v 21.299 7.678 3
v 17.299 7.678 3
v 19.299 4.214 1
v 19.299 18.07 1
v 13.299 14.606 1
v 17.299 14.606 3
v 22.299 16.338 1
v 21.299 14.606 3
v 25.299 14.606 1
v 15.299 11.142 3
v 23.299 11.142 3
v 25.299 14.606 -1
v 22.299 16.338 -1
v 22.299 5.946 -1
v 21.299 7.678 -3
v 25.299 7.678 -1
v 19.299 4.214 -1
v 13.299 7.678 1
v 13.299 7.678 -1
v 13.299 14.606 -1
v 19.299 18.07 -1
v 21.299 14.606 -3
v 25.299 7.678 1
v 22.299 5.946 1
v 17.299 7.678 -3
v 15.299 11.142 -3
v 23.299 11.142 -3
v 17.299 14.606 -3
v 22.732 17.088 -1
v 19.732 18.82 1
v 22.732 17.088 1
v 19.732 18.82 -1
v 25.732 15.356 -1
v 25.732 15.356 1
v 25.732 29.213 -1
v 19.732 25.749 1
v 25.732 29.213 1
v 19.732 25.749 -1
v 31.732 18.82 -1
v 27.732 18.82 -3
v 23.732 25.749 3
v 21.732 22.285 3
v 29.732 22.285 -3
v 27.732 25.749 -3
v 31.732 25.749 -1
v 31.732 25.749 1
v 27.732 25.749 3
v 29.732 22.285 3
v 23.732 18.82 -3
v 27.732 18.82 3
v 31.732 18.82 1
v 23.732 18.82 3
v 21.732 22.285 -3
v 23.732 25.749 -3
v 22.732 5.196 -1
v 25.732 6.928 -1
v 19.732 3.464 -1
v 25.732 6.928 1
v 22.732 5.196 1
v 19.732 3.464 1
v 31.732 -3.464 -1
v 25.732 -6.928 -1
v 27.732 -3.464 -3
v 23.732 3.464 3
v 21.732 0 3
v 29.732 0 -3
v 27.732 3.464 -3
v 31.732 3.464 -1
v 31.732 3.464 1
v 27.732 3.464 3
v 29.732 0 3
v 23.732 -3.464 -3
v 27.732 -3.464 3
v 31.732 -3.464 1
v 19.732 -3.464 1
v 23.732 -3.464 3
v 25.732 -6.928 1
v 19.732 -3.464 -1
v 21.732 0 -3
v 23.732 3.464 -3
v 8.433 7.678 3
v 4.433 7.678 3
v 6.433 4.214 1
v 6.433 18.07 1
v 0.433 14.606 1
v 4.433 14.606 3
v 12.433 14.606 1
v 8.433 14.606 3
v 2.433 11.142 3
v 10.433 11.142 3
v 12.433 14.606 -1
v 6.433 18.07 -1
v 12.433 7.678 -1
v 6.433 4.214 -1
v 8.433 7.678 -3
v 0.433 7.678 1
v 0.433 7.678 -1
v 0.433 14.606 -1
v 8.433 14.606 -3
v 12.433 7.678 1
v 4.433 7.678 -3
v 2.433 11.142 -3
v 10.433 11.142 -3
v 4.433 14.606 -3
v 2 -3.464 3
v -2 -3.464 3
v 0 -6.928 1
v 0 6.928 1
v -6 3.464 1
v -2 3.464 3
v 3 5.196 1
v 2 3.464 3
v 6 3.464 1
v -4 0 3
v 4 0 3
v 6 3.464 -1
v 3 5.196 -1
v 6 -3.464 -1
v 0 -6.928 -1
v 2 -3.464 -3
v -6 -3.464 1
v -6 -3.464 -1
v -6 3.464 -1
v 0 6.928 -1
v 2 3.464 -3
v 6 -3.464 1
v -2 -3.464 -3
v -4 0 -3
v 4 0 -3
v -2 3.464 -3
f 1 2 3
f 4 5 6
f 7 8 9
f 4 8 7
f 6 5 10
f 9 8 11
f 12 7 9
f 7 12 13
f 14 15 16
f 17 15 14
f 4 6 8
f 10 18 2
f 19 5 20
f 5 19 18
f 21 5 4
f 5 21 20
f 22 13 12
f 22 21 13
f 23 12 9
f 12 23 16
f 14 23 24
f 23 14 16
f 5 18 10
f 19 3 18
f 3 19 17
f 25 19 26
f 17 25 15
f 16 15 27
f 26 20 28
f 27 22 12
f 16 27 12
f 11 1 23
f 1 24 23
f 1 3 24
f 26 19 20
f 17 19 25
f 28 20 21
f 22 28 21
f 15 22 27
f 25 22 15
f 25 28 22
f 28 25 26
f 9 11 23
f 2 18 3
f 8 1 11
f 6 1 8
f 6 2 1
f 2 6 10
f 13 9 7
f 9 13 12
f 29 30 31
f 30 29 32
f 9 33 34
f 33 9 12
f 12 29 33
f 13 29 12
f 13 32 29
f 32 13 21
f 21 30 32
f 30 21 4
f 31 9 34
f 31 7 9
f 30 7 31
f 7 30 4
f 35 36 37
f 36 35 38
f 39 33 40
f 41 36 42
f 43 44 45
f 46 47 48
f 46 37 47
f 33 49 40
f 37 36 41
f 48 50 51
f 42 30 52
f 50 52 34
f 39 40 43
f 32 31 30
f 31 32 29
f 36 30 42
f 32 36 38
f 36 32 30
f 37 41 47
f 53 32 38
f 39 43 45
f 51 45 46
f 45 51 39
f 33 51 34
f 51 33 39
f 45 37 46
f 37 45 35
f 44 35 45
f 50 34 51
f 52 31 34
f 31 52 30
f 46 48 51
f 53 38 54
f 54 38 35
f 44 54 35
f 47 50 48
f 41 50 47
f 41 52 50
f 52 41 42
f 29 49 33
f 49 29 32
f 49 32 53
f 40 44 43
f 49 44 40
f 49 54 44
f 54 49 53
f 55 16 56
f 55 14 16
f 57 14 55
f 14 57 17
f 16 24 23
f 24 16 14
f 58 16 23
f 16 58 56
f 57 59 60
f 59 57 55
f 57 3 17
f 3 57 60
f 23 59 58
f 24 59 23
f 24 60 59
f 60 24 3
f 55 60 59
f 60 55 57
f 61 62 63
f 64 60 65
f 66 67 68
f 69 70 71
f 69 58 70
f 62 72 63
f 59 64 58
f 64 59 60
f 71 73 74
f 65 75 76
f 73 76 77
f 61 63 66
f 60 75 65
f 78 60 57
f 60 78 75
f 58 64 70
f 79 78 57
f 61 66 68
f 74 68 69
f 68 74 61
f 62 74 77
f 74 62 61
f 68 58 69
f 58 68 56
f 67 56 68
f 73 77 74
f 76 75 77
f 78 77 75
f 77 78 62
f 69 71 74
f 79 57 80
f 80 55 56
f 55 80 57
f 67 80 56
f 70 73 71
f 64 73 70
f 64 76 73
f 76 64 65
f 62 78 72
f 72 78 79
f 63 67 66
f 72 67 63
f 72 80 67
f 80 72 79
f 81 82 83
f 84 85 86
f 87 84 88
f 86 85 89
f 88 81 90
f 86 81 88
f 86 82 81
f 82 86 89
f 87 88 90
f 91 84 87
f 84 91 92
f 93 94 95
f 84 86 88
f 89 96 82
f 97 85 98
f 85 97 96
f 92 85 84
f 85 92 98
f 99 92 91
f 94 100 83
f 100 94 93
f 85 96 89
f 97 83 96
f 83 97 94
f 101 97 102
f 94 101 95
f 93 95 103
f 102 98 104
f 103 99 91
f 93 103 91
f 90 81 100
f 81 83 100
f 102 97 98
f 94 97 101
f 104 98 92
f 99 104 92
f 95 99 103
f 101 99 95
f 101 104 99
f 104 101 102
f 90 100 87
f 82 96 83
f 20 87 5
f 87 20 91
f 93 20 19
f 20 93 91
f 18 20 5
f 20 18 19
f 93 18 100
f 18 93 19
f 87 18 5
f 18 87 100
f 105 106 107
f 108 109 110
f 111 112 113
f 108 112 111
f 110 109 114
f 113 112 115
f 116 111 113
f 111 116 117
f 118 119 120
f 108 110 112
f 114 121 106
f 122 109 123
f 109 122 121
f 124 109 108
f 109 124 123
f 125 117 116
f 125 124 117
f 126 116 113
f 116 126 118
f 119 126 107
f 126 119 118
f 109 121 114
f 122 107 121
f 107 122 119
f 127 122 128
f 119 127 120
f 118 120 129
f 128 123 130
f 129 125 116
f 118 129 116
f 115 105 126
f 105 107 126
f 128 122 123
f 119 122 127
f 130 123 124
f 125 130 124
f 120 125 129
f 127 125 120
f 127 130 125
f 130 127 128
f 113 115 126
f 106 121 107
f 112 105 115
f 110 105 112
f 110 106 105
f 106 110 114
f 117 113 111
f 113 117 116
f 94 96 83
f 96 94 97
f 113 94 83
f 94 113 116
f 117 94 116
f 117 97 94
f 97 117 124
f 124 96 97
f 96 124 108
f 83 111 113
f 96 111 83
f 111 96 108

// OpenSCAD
// file: gem-common.scad
angles = [for(i = [0:5]) i * (360 / 6)];

inner_poly_radius=8 * cos(60);
outer_poly_radius=8 * cos(30);
outer_poly_z=1;
inner_poly_z=3;


gap_between_gems = cos(30);
distance_to_corner = cos(30) * outer_poly_radius * 2 + gap_between_gems;


module edge_connector(angle = 0) {
    function make_point_2d(r, angle, height) = [r * sin(angle), height];
    
    points = [
        make_point_2d(outer_poly_radius, 30, outer_poly_z),
        make_point_2d(outer_poly_radius, -30, outer_poly_z),
        make_point_2d(outer_poly_radius, -30, -outer_poly_z),
        make_point_2d(outer_poly_radius, 30, -outer_poly_z),
    ];
    
    rotate([0,0,angle]) {
        translate([(distance_to_corner - gap_between_gems) / 2,0,0]){
            rotate([90, 0, 90]) {
                linear_extrude(gap_between_gems) {
                    polygon(points);
                }
            }
        }
    }
}

module move(distance, angle) {
    translate([distance * cos(angle), distance * sin(angle), 0]) {
        children();
    }
}


module corner_connector(angle=0) {
    r = 0.5;
    rotate_angle = angle + 30;
    move(outer_poly_radius + r, rotate_angle) {
        translate([0,0, -outer_poly_z]) {
            rotate([0,0,-rotate_angle]) {
                cylinder($fn=3, r=r, h=outer_poly_z * 2);
            }
        }
    }
}

module gem() {
    function make_point(r, angle, height) = [r * cos(angle), r * sin(angle), height];
    
    top_poly = [for(th = angles) make_point(inner_poly_radius, th, inner_poly_z)];
    top_outer_poly = [for(th = angles) make_point(outer_poly_radius, th + 30, outer_poly_z)];
    bottom_outer_poly = [for(th = angles) make_point(outer_poly_radius, th + 30, -outer_poly_z)];
    bottom_poly = [for(th = angles) make_point(inner_poly_radius, th, -inner_poly_z)];
 
    function rot(n, base) = (n + 1 - base) % 6 + base;
    
    faces = [
        [5, 4, 3, 2, 1, 0],
        for(i = [0:5]) [i, (i + 1) % 6, i + 6],
        for(i = [6:11]) [i, (i - 5) % 6, rot(i, 6)],
        for(i = [6:11]) [i, rot(i, 6), rot(i, 6) + 6, i + 6],
        for(i = [12:17]) [i, rot(i, 12), rot(i, 12) + 6],
        for(i = [18:23]) [i, i-6, rot(i, 18)],
        [18, 19, 20, 21, 22, 23],
    ];
    
    polyhedron(
        concat(
            top_poly,
            top_outer_poly,
            bottom_outer_poly,
            bottom_poly
        ),
        faces
    );
}
// main file
include <./gem-common.scad>

gem();
edge_connector(60);
move(distance_to_corner, 60) {
    gem();
    edge_connector(0);
    move(distance_to_corner, 0) {
        gem();
        edge_connector(60);
        move(distance_to_corner, 60) {
            gem();
        }
        edge_connector(-60);
        move(distance_to_corner, -60) {
            gem();
        }
    }
}
